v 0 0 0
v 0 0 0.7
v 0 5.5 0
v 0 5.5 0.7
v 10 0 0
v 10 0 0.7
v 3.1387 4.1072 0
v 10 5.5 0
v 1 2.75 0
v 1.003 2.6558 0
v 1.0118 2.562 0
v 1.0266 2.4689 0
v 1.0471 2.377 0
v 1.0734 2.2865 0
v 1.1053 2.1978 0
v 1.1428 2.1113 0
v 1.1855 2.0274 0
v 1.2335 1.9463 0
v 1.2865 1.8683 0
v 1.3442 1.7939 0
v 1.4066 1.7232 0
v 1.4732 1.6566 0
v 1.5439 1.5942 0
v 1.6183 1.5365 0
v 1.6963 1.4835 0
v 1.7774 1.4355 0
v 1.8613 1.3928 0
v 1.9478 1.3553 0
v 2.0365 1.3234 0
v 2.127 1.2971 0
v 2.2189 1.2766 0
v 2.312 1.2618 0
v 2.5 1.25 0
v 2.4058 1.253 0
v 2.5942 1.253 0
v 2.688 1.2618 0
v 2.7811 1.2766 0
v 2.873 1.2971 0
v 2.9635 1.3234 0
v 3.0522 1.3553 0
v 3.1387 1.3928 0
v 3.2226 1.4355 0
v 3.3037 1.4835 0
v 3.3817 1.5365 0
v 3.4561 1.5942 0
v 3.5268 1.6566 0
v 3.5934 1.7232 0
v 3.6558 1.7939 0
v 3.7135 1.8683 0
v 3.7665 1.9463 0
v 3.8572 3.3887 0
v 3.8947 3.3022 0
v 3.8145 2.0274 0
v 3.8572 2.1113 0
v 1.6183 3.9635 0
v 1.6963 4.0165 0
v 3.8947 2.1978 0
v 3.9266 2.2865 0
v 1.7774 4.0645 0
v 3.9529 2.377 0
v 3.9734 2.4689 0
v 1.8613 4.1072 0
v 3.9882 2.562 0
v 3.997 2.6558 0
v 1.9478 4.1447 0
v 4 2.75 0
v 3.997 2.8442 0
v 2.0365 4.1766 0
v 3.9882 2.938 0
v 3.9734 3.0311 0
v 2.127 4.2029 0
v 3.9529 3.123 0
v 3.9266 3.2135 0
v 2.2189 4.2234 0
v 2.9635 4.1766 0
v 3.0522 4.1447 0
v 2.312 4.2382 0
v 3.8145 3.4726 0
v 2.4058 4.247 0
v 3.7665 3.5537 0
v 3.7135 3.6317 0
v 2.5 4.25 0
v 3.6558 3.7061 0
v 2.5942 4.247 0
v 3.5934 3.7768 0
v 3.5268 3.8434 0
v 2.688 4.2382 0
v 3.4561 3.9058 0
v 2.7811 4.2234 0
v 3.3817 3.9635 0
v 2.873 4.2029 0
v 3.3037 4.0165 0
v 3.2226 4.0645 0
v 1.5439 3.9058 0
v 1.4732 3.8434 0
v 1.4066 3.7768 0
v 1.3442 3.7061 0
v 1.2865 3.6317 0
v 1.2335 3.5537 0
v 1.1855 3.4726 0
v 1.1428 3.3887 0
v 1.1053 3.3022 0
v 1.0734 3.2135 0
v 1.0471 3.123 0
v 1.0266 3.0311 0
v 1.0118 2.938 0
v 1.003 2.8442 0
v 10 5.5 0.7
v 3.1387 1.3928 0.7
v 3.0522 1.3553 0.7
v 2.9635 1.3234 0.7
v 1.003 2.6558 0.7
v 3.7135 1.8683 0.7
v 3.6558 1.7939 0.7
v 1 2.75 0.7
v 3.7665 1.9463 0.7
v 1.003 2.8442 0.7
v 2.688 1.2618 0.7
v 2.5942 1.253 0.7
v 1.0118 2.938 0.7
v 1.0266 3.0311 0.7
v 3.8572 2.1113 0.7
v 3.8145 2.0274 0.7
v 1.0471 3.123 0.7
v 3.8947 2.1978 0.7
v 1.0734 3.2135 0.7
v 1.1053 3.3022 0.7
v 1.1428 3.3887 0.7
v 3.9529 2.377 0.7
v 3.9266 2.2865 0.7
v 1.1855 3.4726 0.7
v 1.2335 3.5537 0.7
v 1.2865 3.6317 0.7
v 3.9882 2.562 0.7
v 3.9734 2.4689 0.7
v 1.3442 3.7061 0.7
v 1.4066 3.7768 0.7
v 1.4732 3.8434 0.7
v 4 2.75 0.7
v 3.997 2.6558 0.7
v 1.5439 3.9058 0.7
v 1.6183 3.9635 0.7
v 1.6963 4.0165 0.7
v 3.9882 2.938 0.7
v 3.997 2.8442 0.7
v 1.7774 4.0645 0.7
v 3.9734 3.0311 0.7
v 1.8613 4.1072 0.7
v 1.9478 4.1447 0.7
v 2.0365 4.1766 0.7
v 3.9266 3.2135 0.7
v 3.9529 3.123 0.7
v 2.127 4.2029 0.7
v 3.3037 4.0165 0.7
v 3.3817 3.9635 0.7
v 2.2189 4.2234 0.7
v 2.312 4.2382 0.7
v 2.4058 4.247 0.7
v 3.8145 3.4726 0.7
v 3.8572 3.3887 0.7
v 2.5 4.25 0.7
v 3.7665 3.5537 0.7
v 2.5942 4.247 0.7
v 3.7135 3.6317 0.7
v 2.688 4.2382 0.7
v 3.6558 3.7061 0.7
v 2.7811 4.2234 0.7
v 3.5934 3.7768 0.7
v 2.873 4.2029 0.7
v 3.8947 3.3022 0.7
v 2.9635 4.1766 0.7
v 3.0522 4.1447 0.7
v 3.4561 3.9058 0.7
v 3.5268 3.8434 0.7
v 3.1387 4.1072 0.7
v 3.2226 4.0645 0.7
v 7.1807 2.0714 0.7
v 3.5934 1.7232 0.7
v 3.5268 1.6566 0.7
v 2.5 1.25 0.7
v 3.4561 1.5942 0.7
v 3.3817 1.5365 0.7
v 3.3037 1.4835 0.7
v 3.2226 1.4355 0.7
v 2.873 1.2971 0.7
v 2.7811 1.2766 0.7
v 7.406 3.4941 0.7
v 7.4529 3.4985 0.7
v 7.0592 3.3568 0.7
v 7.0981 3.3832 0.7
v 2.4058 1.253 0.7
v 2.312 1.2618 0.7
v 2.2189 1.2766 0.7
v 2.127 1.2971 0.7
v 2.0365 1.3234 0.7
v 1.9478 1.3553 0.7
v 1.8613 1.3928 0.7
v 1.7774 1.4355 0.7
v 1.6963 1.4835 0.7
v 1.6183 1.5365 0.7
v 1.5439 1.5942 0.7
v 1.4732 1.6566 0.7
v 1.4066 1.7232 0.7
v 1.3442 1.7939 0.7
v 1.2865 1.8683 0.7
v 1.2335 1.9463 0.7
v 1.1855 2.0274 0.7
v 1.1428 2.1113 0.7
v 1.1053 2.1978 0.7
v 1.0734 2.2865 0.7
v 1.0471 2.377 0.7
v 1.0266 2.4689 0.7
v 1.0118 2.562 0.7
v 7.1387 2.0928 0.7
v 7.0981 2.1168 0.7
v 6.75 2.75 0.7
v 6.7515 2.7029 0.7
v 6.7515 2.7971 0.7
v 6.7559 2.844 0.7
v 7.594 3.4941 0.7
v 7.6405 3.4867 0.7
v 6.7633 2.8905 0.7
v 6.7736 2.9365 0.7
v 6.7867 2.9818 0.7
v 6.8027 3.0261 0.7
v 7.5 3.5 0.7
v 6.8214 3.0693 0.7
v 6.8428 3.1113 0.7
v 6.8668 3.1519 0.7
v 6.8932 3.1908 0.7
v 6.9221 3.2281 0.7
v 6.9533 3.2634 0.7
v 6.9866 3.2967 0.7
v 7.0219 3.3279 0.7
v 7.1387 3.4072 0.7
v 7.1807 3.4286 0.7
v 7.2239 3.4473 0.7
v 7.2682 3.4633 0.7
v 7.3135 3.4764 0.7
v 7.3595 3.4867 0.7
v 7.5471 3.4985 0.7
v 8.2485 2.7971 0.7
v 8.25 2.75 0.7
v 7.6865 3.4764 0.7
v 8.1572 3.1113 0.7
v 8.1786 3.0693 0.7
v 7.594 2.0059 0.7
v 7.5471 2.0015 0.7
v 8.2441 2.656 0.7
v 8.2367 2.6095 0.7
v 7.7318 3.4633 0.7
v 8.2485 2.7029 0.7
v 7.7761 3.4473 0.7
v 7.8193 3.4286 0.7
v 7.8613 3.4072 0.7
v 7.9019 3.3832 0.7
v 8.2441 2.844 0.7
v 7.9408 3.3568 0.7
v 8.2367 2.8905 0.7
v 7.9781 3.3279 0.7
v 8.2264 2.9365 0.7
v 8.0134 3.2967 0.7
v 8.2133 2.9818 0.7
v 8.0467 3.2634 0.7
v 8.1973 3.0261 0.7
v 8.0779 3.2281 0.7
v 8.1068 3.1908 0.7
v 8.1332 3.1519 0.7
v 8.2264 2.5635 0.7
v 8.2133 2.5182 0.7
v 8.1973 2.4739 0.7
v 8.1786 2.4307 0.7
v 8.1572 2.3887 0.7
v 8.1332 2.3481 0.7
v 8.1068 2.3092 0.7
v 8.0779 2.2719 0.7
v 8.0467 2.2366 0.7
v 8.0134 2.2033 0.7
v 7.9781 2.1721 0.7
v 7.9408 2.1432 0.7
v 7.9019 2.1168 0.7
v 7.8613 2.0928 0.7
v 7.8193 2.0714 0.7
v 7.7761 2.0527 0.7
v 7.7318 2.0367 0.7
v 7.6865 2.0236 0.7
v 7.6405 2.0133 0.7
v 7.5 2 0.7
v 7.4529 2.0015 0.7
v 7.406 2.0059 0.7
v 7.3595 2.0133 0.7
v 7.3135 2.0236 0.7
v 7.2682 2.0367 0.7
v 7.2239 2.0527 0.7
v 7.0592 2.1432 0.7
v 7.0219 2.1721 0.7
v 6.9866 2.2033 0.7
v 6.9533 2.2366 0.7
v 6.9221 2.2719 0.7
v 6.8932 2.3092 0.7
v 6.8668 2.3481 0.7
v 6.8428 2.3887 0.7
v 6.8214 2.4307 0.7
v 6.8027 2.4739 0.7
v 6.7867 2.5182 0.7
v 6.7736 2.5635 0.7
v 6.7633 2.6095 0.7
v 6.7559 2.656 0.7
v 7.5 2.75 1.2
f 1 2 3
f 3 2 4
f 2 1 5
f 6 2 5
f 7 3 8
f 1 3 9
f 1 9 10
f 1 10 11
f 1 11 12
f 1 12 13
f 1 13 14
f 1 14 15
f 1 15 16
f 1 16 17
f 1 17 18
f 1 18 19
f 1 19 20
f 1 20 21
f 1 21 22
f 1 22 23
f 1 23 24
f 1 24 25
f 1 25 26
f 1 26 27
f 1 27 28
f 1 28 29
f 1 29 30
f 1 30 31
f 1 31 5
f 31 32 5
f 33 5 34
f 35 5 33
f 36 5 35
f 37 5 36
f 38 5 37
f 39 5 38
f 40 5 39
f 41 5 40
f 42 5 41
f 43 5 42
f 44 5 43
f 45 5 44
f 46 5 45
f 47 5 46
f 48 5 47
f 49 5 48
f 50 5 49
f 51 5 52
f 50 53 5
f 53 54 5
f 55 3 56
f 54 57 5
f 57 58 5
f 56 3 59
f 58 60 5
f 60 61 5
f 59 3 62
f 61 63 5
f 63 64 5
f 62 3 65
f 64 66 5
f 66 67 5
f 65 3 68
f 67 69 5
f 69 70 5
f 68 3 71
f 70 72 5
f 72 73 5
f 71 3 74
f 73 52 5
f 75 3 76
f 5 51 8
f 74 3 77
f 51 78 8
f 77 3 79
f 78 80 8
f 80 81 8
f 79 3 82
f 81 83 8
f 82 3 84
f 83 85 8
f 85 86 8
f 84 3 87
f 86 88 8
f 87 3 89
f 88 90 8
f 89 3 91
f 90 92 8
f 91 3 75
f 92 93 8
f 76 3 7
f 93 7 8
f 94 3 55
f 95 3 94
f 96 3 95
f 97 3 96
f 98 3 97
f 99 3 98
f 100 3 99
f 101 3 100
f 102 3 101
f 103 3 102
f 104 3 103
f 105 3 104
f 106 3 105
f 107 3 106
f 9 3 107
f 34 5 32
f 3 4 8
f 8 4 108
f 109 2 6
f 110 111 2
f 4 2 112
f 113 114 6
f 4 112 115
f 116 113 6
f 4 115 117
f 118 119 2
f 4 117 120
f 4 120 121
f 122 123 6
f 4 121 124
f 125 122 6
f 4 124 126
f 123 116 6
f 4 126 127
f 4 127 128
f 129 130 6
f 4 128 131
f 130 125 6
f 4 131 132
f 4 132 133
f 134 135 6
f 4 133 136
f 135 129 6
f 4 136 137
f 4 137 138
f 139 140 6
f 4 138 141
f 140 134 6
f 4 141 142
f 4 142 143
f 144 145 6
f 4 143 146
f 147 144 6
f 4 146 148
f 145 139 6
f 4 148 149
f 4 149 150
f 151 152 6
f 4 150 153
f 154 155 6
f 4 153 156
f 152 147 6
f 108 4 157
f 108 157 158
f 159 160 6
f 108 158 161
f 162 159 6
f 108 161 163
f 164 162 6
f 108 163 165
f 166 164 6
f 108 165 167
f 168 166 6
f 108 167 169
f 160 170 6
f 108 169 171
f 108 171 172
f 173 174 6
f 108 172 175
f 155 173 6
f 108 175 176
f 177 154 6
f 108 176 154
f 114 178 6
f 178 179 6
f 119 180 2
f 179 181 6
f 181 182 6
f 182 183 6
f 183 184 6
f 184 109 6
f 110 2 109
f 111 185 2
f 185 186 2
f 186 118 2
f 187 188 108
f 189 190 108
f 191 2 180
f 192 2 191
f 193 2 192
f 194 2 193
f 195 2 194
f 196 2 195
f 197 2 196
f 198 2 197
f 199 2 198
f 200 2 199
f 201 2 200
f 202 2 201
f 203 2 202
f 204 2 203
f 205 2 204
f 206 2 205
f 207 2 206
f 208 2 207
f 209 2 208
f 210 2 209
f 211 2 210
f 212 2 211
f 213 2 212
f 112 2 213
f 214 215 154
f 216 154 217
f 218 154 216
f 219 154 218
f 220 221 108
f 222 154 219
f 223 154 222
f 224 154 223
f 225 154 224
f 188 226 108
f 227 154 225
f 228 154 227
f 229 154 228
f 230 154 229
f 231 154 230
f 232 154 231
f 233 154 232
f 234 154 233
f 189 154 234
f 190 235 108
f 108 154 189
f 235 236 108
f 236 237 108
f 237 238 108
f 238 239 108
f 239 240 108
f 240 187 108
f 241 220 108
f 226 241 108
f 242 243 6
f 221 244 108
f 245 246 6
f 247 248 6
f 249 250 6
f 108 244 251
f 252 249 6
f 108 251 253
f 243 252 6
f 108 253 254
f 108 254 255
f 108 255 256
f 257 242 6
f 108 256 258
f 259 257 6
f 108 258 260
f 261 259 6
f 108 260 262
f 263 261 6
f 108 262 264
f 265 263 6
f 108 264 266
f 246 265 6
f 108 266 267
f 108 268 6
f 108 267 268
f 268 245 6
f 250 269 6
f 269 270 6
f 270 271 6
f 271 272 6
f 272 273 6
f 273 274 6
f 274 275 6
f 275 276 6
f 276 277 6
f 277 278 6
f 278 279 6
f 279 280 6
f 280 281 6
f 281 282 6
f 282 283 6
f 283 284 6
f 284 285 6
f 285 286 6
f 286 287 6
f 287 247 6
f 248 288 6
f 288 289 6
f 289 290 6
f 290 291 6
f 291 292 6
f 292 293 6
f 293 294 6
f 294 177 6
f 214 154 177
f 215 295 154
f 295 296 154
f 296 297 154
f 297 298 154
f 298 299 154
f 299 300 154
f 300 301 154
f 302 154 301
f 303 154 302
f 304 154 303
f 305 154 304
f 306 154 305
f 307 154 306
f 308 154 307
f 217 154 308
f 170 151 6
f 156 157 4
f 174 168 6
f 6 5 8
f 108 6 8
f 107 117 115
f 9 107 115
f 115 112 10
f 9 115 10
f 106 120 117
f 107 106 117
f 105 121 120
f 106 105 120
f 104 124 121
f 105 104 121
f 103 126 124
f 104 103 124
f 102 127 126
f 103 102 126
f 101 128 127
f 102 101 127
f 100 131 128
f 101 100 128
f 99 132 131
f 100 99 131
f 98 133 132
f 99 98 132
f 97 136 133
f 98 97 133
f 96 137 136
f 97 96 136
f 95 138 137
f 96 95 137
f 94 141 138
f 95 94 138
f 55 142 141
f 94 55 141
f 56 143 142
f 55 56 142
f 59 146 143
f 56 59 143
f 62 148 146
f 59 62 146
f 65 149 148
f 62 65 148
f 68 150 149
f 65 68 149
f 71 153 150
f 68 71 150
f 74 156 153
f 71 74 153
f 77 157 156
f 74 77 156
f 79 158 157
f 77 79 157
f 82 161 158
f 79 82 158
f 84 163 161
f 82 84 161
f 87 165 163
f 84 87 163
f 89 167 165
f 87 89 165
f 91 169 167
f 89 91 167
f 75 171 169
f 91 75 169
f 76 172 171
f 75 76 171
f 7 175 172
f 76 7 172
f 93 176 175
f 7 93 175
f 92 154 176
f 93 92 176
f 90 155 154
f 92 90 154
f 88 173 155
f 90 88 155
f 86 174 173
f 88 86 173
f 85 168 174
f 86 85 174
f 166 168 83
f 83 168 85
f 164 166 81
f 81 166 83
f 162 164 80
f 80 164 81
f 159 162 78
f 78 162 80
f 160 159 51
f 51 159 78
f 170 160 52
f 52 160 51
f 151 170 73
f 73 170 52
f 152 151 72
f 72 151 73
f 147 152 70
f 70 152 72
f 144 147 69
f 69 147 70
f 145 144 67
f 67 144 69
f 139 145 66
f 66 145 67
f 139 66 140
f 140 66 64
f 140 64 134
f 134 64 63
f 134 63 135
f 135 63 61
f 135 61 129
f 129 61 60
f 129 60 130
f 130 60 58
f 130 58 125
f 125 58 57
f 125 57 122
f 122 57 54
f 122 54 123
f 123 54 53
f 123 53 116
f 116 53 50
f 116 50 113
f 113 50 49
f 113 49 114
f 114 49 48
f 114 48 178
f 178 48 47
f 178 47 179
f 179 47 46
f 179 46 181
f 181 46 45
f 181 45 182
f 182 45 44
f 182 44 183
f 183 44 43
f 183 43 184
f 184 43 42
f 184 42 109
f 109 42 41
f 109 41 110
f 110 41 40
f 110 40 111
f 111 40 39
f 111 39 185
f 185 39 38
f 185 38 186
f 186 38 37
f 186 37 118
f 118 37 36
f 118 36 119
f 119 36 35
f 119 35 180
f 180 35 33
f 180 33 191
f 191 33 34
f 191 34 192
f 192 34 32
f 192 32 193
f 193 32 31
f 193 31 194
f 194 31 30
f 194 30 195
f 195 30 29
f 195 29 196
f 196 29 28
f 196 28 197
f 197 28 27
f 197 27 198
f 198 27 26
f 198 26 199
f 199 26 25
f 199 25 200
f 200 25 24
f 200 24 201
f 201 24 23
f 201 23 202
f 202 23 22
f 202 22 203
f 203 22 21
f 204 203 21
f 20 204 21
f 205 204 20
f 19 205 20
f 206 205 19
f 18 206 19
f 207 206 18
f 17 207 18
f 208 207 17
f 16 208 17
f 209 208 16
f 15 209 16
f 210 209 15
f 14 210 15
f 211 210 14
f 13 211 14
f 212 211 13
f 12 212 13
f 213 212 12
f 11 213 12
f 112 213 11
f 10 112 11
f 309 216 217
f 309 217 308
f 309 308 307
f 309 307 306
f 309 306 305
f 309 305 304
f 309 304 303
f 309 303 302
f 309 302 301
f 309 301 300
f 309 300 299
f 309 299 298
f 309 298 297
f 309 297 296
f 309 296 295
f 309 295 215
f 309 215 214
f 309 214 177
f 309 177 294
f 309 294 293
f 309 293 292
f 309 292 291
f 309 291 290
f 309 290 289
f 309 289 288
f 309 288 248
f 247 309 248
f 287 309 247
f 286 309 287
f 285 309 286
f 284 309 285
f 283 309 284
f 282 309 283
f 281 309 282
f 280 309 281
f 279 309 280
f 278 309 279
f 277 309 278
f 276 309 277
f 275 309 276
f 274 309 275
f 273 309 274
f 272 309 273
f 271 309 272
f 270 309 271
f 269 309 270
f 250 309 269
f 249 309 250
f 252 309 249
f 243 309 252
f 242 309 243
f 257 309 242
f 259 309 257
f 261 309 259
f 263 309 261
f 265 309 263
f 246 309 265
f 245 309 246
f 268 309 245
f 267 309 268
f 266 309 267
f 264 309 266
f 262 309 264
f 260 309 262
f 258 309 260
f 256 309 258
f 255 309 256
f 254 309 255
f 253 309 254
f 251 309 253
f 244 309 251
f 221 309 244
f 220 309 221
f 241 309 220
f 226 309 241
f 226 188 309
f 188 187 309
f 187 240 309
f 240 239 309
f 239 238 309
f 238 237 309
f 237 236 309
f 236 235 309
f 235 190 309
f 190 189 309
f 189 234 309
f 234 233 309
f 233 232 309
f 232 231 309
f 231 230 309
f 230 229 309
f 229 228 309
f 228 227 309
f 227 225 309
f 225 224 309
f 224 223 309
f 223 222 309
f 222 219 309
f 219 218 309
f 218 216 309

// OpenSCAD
/*
 * lcd_corner_shim.scan
 *
 * (Mostly) untested LCD corner shim for the Novena Laptop
 * by Michael Fincham <michael@hotplate.co.nz>
 *
 */

$fn = 100;
$hole = 3; // mm

union() {
    difference() {
        cube([10, 5.5, 0.7]);
        translate([$hole/2 + 1, 2.75, -0.1]) {
            cylinder(r=$hole/2, h=5);
        }
    }
    translate([10-$hole/2 - 1, 2.75, 0.2]) {
        cylinder(r1=$hole/2,r2=0);
    }
}
